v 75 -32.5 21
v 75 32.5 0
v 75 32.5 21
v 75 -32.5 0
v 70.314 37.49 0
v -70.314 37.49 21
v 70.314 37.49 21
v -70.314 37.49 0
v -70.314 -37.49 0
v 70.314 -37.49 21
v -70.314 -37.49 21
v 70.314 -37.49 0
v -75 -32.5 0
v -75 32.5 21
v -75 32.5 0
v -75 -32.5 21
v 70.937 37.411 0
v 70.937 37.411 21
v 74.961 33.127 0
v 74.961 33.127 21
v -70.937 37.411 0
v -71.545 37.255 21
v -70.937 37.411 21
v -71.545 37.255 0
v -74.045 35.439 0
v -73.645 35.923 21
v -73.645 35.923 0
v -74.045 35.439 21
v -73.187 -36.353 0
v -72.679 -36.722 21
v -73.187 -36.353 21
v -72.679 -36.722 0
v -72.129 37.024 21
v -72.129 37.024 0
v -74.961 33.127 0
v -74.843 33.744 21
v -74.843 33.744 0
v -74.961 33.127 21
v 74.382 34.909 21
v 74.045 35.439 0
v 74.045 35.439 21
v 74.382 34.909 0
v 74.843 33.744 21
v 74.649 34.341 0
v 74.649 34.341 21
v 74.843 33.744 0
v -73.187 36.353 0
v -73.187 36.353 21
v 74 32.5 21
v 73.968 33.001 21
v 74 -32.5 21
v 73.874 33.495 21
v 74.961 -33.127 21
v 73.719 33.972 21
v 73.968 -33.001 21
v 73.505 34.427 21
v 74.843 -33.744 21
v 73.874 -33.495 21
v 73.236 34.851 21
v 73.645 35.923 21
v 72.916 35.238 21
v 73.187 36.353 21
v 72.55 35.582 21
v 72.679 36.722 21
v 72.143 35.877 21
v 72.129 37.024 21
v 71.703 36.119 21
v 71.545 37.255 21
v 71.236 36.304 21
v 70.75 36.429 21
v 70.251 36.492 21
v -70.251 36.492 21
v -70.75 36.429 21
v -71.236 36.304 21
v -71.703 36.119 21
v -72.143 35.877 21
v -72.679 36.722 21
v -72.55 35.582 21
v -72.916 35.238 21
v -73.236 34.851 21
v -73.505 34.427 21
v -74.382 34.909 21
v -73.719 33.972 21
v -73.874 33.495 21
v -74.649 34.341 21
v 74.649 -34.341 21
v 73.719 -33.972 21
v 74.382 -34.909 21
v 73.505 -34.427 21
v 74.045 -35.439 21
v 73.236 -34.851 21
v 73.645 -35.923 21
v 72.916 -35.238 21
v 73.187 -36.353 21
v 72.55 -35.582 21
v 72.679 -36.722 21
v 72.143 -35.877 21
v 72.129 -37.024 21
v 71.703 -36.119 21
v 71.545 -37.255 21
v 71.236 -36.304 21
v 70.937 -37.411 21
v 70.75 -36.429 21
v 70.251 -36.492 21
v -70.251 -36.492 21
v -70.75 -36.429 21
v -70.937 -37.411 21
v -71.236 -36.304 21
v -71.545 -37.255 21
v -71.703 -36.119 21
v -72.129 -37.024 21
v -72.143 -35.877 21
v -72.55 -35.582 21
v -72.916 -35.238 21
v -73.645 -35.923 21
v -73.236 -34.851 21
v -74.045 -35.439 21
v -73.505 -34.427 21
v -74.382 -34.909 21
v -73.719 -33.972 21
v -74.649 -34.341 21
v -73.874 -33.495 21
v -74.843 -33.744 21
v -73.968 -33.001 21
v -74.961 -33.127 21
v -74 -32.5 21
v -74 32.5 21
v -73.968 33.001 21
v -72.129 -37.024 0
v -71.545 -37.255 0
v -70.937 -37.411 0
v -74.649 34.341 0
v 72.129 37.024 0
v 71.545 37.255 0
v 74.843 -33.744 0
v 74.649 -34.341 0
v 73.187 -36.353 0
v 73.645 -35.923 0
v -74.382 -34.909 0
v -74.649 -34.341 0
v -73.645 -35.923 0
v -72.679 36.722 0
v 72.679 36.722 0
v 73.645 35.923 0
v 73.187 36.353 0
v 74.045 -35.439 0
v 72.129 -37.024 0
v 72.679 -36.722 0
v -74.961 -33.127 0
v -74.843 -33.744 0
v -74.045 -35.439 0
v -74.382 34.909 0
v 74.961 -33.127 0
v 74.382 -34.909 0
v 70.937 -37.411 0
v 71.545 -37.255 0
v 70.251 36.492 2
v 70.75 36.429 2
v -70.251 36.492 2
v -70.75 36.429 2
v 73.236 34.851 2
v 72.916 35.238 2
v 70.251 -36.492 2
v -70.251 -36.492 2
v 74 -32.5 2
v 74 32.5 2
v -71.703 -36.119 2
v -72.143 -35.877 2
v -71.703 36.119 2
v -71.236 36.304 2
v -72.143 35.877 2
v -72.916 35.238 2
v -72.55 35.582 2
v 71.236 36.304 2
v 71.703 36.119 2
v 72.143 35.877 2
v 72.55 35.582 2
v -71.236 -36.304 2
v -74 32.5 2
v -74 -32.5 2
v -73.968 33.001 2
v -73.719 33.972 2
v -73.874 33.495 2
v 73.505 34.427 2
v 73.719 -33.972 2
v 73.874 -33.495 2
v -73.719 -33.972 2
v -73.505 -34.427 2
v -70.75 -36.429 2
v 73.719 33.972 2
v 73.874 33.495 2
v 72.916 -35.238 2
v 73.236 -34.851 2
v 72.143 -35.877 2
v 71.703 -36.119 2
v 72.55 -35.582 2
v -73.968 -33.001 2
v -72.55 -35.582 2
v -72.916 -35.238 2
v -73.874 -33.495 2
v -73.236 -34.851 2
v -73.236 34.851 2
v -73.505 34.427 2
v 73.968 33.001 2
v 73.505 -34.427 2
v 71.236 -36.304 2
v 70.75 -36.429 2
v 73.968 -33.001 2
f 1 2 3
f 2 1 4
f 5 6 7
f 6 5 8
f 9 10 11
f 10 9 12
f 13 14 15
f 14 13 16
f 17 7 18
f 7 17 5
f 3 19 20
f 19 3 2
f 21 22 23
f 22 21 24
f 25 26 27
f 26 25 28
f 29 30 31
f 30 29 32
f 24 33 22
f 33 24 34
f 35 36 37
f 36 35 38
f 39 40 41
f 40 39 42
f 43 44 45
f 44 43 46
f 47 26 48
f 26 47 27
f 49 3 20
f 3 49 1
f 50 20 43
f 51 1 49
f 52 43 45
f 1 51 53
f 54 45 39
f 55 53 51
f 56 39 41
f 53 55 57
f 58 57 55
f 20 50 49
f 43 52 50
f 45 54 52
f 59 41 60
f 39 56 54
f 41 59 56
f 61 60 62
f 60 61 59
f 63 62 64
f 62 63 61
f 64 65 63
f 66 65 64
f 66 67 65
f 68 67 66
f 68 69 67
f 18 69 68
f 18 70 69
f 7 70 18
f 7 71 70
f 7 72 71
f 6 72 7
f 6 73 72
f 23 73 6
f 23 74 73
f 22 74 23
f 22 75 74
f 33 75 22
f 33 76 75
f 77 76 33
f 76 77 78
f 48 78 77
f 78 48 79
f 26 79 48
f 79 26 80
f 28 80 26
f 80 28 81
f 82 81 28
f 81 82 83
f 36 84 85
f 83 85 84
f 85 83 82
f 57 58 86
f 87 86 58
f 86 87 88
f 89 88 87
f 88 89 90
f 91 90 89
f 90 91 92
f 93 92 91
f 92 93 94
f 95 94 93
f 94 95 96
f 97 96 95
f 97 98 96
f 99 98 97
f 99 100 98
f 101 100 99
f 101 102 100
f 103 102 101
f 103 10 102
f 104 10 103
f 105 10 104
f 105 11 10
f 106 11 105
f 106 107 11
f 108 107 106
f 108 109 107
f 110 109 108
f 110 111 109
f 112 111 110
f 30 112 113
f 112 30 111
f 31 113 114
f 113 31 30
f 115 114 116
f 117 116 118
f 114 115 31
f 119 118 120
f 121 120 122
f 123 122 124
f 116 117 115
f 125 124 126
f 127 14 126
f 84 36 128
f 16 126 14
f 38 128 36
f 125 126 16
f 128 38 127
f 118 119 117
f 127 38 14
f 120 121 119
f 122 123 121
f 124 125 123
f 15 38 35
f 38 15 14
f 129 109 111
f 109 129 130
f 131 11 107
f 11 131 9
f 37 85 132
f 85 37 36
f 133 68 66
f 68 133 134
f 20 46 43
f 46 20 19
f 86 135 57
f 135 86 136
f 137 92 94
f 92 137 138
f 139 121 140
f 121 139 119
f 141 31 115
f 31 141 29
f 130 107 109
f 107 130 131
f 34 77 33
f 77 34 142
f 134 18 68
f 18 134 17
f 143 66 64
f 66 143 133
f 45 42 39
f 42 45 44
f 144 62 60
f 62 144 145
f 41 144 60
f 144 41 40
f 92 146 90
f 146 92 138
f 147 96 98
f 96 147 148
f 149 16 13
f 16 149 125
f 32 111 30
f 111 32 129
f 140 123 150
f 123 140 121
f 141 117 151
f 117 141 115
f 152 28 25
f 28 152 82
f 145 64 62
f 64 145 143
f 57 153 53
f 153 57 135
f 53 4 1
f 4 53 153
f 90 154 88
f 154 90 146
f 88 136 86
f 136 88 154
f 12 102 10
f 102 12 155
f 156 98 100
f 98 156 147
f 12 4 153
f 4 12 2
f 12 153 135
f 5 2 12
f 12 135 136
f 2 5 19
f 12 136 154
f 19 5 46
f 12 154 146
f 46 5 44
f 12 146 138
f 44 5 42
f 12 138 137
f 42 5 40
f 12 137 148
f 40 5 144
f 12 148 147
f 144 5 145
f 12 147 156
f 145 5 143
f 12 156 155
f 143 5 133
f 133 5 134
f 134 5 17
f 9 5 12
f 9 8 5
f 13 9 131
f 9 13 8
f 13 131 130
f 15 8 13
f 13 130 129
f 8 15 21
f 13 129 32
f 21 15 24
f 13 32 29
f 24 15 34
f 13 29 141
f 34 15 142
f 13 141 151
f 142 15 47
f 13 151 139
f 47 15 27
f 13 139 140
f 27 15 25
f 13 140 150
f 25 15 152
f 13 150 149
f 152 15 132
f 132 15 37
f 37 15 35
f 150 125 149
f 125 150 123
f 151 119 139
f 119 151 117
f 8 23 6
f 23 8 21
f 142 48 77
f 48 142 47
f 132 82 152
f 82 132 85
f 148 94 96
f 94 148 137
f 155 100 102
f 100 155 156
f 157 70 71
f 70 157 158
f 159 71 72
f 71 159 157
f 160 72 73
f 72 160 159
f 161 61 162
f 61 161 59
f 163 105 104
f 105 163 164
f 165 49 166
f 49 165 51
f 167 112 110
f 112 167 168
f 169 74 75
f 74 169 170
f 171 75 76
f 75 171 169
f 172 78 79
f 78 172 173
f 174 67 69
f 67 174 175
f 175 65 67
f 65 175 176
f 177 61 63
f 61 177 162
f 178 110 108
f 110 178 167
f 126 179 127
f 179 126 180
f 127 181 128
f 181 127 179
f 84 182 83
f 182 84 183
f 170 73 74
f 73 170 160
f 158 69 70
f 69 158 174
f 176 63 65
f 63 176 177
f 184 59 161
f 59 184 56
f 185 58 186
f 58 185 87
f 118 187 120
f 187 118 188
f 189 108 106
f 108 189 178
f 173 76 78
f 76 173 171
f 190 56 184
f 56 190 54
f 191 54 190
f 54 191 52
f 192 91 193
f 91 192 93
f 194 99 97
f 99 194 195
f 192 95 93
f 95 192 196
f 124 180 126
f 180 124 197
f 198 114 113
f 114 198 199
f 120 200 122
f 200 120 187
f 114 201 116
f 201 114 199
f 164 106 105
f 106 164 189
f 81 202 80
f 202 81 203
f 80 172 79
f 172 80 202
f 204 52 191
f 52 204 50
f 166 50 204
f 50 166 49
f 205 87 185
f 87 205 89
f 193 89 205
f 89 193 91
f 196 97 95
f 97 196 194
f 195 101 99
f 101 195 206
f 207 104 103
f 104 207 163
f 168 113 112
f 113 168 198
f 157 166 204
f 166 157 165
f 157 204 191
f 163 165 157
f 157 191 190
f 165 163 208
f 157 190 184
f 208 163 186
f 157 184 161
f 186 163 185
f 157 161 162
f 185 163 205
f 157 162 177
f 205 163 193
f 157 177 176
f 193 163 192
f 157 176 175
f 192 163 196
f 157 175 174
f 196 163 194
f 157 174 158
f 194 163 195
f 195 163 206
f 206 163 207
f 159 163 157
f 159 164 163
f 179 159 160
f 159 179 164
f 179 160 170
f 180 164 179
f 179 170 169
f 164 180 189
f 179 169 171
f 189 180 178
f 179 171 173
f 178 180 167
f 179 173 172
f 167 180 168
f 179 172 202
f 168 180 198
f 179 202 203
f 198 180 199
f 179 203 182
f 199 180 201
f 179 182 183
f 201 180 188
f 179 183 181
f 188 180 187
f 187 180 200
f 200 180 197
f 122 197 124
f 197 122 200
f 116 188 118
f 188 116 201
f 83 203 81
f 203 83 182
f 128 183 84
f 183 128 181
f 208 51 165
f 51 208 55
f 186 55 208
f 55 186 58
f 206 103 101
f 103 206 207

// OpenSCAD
$fn = 50;


difference() {
	union() {
		hull() {
			translate(v = [-70.0000000000, 32.5000000000, 0]) {
				cylinder(h = 21, r = 5);
			}
			translate(v = [70.0000000000, 32.5000000000, 0]) {
				cylinder(h = 21, r = 5);
			}
			translate(v = [-70.0000000000, -32.5000000000, 0]) {
				cylinder(h = 21, r = 5);
			}
			translate(v = [70.0000000000, -32.5000000000, 0]) {
				cylinder(h = 21, r = 5);
			}
		}
	}
	union() {
		translate(v = [0, 0, 2]) {
			hull() {
				translate(v = [-70.0000000000, 32.5000000000, 0]) {
					cylinder(h = 19, r = 4);
				}
				translate(v = [70.0000000000, 32.5000000000, 0]) {
					cylinder(h = 19, r = 4);
				}
				translate(v = [-70.0000000000, -32.5000000000, 0]) {
					cylinder(h = 19, r = 4);
				}
				translate(v = [70.0000000000, -32.5000000000, 0]) {
					cylinder(h = 19, r = 4);
				}
			}
		}
	}
}
